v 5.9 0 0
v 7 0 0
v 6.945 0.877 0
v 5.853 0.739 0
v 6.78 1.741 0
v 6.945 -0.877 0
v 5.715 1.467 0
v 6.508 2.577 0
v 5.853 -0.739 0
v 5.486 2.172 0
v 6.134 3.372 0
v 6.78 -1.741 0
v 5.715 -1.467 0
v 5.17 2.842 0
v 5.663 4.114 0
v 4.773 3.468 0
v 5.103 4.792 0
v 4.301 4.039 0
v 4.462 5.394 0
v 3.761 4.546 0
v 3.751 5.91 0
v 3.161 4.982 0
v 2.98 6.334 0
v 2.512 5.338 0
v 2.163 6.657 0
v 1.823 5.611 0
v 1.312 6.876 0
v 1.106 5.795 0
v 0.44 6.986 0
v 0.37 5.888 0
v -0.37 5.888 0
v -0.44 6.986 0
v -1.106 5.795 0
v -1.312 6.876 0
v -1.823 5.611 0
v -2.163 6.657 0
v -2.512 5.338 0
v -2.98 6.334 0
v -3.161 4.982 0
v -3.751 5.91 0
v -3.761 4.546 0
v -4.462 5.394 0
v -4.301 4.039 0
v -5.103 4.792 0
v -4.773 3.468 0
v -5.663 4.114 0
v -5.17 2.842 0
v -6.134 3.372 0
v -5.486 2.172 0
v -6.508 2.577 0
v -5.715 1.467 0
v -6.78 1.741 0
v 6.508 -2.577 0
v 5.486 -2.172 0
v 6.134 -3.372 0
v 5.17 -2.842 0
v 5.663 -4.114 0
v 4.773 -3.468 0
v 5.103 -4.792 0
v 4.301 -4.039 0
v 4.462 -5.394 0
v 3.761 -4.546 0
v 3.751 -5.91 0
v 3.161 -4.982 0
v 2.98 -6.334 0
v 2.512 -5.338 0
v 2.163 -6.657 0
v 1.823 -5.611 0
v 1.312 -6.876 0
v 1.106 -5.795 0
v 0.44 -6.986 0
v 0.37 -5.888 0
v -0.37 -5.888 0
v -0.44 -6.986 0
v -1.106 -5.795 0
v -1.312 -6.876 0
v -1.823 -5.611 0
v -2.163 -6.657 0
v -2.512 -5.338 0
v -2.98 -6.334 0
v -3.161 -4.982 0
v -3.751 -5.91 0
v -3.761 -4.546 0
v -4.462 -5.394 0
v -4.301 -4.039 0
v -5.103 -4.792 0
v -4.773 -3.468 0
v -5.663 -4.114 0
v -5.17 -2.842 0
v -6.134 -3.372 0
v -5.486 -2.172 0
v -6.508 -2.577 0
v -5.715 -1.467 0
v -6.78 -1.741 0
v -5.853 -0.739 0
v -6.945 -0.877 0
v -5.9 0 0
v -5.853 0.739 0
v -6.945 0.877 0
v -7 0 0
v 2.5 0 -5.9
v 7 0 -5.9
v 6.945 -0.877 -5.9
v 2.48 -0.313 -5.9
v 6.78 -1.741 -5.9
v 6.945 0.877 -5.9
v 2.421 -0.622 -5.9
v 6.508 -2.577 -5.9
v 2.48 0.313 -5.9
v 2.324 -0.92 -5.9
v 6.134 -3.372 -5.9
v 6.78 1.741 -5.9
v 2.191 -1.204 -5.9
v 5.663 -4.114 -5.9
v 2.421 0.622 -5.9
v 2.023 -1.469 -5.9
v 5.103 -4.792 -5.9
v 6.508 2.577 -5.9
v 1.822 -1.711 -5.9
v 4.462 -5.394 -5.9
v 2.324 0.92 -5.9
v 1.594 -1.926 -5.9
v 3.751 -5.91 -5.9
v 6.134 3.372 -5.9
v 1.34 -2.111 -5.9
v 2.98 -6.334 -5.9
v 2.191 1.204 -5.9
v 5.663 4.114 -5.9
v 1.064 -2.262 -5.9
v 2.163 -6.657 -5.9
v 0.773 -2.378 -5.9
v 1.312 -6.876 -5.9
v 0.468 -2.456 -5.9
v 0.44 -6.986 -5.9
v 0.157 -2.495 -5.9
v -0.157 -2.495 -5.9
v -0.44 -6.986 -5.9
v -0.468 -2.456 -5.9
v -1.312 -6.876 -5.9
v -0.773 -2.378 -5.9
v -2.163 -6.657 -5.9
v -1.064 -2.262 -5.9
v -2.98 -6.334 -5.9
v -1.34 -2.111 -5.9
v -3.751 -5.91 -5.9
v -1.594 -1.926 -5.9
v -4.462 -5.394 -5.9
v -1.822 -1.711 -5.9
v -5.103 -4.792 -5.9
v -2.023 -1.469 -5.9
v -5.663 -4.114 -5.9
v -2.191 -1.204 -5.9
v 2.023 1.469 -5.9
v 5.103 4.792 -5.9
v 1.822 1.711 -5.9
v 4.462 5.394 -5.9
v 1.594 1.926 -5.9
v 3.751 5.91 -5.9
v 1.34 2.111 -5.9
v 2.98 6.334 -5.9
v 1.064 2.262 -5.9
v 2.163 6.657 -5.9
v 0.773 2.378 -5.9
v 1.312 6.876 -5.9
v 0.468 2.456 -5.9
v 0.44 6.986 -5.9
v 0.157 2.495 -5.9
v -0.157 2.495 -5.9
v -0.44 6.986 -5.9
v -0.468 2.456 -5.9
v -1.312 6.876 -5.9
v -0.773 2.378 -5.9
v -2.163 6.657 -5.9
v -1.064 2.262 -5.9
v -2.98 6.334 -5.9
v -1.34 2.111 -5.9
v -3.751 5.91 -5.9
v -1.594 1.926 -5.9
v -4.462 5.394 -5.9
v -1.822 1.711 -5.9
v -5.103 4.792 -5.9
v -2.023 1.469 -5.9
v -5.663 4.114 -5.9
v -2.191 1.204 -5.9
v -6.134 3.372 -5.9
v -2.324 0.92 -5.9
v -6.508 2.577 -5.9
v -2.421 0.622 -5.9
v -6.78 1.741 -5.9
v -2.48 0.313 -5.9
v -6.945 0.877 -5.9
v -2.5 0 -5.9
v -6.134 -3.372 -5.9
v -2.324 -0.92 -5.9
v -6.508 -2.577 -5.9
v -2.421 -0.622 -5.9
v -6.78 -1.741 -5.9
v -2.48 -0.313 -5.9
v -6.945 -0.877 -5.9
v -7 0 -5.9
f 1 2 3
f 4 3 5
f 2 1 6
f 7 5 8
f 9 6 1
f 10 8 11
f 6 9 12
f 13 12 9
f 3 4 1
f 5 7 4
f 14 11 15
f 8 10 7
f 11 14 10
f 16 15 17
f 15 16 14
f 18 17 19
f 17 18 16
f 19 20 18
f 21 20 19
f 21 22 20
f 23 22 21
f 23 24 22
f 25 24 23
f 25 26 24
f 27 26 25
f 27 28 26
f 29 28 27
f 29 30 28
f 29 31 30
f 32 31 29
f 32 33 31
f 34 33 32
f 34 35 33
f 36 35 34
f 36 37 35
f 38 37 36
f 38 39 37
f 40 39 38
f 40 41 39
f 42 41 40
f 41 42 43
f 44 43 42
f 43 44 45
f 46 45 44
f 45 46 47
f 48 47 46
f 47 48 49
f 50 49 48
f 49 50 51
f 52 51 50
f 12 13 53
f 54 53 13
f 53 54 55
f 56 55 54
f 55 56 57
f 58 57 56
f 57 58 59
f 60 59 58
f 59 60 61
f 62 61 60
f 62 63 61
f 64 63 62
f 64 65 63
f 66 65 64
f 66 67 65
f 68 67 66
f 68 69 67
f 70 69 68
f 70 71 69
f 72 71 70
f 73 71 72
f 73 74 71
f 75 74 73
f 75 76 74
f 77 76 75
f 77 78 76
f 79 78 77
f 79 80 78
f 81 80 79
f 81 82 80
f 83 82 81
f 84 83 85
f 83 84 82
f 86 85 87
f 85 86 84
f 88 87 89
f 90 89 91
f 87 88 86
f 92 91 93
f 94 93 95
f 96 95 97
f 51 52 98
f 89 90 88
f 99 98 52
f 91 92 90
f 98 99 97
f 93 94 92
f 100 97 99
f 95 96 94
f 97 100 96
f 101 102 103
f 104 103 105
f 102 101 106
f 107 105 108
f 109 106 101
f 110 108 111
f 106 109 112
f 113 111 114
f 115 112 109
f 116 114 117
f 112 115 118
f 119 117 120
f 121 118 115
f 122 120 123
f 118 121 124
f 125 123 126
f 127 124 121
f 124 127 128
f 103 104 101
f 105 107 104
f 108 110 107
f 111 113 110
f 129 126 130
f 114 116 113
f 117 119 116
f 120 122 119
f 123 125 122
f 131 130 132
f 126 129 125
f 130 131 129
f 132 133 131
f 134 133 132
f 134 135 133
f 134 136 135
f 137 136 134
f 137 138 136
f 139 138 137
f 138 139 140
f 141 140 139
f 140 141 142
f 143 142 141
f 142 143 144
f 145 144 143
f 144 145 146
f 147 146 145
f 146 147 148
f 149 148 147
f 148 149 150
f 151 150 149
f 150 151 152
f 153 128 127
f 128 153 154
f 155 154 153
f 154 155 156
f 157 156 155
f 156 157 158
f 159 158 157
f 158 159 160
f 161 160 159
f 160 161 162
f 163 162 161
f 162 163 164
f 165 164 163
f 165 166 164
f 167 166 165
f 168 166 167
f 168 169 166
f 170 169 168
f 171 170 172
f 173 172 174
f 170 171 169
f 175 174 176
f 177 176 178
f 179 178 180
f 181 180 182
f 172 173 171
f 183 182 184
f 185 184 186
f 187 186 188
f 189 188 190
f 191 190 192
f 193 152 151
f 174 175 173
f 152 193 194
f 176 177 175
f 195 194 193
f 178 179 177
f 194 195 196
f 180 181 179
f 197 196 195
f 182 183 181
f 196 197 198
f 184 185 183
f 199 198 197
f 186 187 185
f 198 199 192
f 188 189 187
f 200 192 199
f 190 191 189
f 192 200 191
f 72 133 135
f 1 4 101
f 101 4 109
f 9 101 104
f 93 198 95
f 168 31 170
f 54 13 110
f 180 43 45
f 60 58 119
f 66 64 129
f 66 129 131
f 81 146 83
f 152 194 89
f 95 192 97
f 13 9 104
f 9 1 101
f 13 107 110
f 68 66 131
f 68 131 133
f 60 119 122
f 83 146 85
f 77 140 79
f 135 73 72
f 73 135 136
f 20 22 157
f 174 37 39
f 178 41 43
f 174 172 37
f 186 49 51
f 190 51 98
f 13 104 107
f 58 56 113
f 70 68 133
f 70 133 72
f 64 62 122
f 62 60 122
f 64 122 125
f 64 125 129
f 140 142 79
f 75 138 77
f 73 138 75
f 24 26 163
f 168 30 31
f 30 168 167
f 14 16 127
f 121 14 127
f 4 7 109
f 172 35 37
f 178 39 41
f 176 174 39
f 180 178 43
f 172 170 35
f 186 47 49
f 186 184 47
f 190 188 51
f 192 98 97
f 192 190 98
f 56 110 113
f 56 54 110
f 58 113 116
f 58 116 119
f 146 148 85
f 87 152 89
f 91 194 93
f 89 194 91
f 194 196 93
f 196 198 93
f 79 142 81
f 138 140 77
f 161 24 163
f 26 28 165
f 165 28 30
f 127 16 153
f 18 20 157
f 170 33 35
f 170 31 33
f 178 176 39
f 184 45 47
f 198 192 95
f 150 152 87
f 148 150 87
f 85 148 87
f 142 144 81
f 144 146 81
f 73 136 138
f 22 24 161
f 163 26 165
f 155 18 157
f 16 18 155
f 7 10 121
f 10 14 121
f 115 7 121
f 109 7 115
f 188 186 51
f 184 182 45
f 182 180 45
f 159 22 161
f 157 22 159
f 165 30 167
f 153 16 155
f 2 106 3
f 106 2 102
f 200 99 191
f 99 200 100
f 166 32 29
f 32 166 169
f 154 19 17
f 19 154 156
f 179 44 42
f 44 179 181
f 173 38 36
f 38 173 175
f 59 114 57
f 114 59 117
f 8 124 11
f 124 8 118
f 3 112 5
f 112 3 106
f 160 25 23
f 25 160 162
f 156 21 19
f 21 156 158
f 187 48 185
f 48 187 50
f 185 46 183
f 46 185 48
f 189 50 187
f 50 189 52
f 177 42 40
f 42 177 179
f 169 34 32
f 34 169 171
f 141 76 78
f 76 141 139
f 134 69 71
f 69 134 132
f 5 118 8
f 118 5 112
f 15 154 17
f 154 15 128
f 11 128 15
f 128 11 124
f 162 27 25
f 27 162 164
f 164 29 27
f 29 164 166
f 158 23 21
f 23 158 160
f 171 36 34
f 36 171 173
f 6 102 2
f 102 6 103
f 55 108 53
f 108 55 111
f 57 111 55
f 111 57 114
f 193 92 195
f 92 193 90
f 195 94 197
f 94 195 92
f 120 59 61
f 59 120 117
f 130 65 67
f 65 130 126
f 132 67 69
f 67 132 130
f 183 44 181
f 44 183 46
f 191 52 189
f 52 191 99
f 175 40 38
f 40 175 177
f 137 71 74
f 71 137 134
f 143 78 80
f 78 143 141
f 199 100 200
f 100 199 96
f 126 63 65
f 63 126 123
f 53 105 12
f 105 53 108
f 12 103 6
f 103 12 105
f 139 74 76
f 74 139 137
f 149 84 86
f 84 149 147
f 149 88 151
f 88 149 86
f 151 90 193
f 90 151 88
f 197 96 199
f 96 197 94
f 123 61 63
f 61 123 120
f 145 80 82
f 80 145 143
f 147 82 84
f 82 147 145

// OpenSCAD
$fn = 50;


difference() {
	union() {
		translate(v = [0, 0, -5.9000000000]) {
			cylinder(h = 5.9000000000, r = 7.0000000000);
		}
	}
	union() {
		translate(v = [0, 0, 0]) {
			rotate(a = [0, 0, 0]) {
				difference() {
					union() {
						#translate(v = [0, 0, -5.9000000000]) {
							cylinder(h = 5.9000000000, r = 2.2500000000);
						}
						#translate(v = [0, 0, -5.9000000000]) {
							cylinder(h = 5.9000000000, r1 = 2.5000000000, r2 = 5.9000000000);
						}
						#translate(v = [0, 0, -5.9000000000]) {
							cylinder(h = 5.9000000000, r = 2.5000000000);
						}
						#translate(v = [0, 0, -5.9000000000]) {
							cylinder(h = 5.9000000000, r = 2.2500000000);
						}
					}
					union();
				}
			}
		}
	}
}
